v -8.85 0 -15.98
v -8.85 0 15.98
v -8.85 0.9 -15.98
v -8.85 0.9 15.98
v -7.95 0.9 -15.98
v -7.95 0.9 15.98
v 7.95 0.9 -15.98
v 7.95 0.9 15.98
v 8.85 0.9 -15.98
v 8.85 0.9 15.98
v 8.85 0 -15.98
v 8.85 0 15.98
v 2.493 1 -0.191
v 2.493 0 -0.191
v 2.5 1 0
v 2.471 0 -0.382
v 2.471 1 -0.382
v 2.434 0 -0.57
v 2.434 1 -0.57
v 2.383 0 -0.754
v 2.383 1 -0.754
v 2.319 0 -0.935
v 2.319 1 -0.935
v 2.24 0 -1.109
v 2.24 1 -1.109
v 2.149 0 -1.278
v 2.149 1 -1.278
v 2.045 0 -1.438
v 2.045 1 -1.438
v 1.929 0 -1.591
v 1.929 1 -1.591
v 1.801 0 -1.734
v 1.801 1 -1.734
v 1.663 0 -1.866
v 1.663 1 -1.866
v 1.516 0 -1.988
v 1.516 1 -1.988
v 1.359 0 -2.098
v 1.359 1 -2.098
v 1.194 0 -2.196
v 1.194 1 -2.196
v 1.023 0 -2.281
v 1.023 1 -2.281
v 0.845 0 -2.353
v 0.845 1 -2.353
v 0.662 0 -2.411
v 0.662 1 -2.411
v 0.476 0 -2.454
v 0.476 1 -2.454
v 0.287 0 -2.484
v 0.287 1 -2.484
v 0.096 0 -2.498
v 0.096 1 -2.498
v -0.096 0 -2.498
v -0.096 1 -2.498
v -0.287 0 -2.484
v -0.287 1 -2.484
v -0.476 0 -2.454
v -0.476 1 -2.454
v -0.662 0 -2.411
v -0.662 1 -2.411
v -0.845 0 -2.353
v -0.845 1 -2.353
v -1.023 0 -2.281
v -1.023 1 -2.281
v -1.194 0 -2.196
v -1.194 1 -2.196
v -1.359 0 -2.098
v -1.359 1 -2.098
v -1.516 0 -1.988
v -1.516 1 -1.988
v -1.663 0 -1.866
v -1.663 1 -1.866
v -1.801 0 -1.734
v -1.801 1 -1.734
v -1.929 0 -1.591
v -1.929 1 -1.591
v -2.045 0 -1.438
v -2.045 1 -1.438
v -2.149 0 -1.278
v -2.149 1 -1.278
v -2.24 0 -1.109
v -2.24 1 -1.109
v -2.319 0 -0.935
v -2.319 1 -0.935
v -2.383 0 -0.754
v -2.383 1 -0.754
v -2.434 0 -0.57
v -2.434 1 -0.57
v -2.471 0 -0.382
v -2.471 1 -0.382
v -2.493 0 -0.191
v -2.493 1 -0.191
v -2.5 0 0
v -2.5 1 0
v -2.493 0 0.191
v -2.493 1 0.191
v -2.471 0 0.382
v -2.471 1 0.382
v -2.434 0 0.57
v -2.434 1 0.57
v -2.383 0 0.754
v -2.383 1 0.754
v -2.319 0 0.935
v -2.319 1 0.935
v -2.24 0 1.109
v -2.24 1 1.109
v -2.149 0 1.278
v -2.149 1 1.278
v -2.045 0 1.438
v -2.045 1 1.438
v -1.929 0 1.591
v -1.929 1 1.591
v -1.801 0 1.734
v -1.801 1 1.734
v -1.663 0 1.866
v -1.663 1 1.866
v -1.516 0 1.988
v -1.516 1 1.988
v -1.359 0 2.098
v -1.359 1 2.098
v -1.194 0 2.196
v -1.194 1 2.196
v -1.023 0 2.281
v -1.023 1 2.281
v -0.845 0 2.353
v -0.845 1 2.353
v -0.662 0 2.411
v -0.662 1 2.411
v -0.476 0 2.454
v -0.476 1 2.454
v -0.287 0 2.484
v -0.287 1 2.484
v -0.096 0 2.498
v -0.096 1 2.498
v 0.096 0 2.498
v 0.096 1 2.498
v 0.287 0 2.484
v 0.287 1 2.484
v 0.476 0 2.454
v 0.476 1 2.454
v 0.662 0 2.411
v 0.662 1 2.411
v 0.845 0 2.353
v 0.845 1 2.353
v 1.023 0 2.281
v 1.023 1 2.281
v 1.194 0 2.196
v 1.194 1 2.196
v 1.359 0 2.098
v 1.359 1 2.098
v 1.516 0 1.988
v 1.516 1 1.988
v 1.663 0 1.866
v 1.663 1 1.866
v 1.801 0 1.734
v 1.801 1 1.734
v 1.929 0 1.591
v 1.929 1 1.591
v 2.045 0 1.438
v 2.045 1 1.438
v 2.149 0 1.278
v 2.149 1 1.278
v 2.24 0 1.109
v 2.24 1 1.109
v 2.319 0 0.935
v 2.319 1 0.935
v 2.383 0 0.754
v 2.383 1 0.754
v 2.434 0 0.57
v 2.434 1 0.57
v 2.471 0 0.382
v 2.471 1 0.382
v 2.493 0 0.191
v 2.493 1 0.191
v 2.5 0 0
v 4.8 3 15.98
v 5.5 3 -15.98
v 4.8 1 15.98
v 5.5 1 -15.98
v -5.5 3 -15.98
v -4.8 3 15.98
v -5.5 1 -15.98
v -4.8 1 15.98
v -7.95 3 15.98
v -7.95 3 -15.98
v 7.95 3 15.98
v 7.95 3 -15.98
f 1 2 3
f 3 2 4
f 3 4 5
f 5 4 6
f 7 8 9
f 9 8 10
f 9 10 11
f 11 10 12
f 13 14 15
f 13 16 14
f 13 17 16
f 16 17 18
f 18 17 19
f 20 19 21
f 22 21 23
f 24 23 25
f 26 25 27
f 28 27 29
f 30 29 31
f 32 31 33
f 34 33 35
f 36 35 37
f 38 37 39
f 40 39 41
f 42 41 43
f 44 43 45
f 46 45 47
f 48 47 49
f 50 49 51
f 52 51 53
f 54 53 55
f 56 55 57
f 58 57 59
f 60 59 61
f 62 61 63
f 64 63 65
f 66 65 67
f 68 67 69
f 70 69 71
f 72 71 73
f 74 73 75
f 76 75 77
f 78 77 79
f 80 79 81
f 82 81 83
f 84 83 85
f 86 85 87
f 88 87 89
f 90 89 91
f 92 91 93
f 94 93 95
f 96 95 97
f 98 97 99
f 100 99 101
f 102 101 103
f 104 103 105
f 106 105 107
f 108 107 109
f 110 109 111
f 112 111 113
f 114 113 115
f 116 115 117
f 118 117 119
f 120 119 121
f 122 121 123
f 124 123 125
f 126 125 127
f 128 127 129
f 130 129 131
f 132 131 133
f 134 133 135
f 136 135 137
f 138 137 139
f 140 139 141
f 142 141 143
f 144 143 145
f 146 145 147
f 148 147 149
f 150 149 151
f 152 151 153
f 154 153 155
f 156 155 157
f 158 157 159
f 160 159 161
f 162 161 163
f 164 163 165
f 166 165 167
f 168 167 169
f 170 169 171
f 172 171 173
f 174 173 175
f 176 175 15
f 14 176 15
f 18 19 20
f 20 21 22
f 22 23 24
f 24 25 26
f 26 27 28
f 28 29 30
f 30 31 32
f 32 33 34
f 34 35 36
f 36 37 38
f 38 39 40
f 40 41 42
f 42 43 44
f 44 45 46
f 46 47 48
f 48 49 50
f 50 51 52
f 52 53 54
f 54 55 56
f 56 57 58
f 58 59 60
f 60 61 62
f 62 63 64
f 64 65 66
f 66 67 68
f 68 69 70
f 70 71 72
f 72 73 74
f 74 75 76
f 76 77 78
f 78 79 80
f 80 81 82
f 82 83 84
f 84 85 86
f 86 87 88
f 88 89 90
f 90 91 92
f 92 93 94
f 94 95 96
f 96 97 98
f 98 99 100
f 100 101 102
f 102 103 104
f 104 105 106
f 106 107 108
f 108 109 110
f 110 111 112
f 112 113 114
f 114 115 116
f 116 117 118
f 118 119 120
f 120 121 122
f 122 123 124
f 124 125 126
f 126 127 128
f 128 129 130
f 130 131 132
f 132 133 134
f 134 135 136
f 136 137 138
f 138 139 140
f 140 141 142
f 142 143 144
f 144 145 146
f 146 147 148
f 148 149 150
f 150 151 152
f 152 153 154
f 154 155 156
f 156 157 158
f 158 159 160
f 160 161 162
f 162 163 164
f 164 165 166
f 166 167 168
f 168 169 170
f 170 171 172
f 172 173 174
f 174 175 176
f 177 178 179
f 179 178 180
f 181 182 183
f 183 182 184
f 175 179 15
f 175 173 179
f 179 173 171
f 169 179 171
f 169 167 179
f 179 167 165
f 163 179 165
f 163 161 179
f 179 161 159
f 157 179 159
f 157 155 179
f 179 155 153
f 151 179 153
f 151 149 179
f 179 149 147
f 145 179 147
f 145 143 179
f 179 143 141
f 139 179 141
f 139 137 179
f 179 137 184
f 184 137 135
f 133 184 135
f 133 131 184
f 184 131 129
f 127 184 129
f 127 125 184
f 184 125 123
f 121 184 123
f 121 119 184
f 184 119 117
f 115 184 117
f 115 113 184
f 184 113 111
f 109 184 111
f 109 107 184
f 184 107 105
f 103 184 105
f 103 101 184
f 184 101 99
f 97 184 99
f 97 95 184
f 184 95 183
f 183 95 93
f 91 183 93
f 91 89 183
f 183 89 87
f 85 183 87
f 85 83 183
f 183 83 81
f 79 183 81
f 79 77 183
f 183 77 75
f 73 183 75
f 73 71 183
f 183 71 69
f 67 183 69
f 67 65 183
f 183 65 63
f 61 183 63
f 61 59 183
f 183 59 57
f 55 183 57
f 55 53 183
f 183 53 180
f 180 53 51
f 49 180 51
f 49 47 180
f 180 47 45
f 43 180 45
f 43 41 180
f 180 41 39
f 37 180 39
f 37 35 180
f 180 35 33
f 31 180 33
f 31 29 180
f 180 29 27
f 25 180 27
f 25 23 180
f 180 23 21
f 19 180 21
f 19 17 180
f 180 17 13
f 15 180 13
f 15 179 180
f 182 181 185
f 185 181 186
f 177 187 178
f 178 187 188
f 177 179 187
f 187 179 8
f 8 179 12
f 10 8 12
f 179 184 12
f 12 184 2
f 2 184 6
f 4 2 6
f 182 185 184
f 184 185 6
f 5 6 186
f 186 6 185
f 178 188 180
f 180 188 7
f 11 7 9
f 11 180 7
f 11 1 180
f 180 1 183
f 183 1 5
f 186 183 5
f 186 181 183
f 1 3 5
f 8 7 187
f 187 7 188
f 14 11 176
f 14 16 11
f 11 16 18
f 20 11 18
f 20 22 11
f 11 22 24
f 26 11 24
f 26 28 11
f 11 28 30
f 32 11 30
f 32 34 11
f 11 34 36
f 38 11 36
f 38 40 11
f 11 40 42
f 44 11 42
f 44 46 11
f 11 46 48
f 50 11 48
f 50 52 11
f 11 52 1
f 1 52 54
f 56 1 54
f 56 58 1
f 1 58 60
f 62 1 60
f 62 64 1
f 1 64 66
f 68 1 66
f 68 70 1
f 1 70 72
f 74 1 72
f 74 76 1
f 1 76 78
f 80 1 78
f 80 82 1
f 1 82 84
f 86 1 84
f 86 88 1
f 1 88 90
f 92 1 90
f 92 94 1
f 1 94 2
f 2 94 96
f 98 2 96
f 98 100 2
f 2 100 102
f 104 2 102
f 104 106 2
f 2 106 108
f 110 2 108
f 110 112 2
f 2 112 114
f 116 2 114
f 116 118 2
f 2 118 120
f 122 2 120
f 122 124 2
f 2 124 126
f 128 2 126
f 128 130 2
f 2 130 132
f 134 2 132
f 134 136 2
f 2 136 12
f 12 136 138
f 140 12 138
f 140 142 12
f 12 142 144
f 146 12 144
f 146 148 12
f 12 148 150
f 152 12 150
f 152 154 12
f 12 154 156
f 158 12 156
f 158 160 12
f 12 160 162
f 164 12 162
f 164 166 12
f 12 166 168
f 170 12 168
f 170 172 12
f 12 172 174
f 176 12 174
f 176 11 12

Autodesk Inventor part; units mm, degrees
ref_plane "YZ Plane" through (0, 0, 0) normal (1, 0, 0) x (0, 1, 0)
ref_plane "XZ Plane" through (0, 0, 0) normal (0, 1, 0) x (-1, 0, 0)
ref_plane "XY Plane" through (0, 0, 0) normal (0, 0, 1) x (1, 0, 0)
sketch "Sketch1" plane through (0, 0, 0) normal (0, 1, 0) x (-1, 0, 0)
  line L0 (7.95, 15.98) -> (-7.95, 15.98)
  line L1 (-7.95, 15.98) -> (-7.95, -15.98)
  line L2 (-7.95, -15.98) -> (7.95, -15.98)
  line L3 (7.95, -15.98) -> (7.95, 15.98)
  line L4 (7.95, 15.98) -> (-7.95, -15.98) construction
  line L5 (-7.95, 15.98) -> (7.95, -15.98) construction
  point P0 (0, 0)
  dimension "d0" = 31.96
  dimension "d1" = 15.9
extrude "adapter-arm" add sketch "Sketch1" along normal blind 3
sketch "fanslot" plane through (0, 3, 0) normal (0, 1, 0) x (1, 0, 0)
  line L0 (-4.8, -15.98) -> (4.8, -15.98)
  line L1 (4.8, -15.98) -> (5.5, 15.98)
  line L2 (5.5, 15.98) -> (-5.5, 15.98)
  line L3 (-5.5, 15.98) -> (-4.8, -15.98)
  line L4 (0, 16.157) -> (0, -15.9695) construction
  line L5 (-7.95, -15.98) -> (7.95, -15.98) construction
  line L6 (7.95, 15.98) -> (-7.95, 15.98) construction
  point P0 (0, 0)
  point P1 (0, -15.98)
  point P2 (0, 15.98)
  point P3 (-5.98, -15.98)
  point P4 (5.98, -15.98)
  point P5 (5.98, 15.98)
  point P6 (-5.98, 15.98)
  dimension "d21" = 11
  dimension "d22" = 9.6
extrude "Extrusion3" cut sketch "fanslot" against normal blind 2
sketch "Sketch5" plane through (0, 0, 0) normal (0, -1, 0) x (1, 0, 0)
  circle A0 centre (0, 0) radius 2.5
  dimension "d25" = 5
extrude "Extrusion4" cut sketch "Sketch5" against normal up to next
sketch "Sketch6" plane through (-7.95, 0, 15.98) normal (0, 0, 1) x (1, 0, 0)
  line L0 (0, 0) -> (-0.9, 0)
  line L1 (-0.9, 0) -> (-0.9, 0.9)
  line L2 (-0.9, 0.9) -> (0, 0.9)
  line L3 (0, 0.9) -> (0, 0)
  line L4 (15.9, 0) -> (16.8, 0)
  line L5 (16.8, 0) -> (16.8, 0.9)
  line L6 (16.8, 0.9) -> (15.9, 0.9)
  line L7 (15.9, 0.9) -> (15.9, 0)
  point P0 (7.95, 0)
  dimension "d28" = 0.9
  dimension "d29" = 0.9
  dimension "d30" = 0.9
  dimension "d31" = 0.9
extrude "Extrusion5" add sketch "Sketch6" against normal up to surface (31.96 mm away)
equation "\"d2\" = armthick"
equation "\"d21\" = fanhb"
equation "\"d22\" = fanhs"
equation "\"d23\" = armslotd"
equation "\"printer3dtolerance\" = 0.1"
equation "\"wallw\" = 42"
equation "\"wallh\" = 44"
equation "\"cornerrad\" = 2"
equation "\"baseextra\" = 2"
equation "\"wall1_thick\" = 8"
equation "\"wall2_thick\" = 6.4"
equation "\"wall3_thick\" = 4"
equation "\"wall1slot\" = 8.1"
equation "\"wall2slot\" = 6.5"
equation "\"wall3slot\" = 4.1"
equation "\"gap2\" = 28"
equation "\"baseh\" = 79"
equation "\"basew\" = 44"
equation "\"base_thick\" = 6"
equation "\"base_slots_depth\" = 4"
equation "\"servobigcircledia\" = 11.6"
equation "\"servosmallcircledia\" = 5.9"
equation "\"servo9gw\" = 22.8"
equation "\"servomounth\" = 4"
equation "\"servomountsquare\" = 4"
equation "\"servopolygonr\" = 6.1"
equation "\"servopolygonl\" = 5.9"
equation "\"distancefrombottom\" = 34"
equation "\"distancefromleft\" = 22"
equation "\"wall3slotd\" = 2"
equation "\"wall3slotw\" = 36"
equation "\"adapterh\" = 16"
equation "\"adapterw\" = 32"
equation "\"armw\" = 34"
equation "\"armslotd\" = 2"
equation "\"armthick\" = 3"
equation "\"fanhb\" = 11"
equation "\"fanhs\" = 9.6"
equation "\"adapterwallthick\" = 6"
equation "\"adapterwallslotd\" = 2"
equation "\"hornscrewheadd\" = 3"
equation "\"hornscrewholed\" = 2"
equation "\"hornthick\" = 1.5"
equation "\"armhornthick\" = 3"
properties part number "adapter-slot"
